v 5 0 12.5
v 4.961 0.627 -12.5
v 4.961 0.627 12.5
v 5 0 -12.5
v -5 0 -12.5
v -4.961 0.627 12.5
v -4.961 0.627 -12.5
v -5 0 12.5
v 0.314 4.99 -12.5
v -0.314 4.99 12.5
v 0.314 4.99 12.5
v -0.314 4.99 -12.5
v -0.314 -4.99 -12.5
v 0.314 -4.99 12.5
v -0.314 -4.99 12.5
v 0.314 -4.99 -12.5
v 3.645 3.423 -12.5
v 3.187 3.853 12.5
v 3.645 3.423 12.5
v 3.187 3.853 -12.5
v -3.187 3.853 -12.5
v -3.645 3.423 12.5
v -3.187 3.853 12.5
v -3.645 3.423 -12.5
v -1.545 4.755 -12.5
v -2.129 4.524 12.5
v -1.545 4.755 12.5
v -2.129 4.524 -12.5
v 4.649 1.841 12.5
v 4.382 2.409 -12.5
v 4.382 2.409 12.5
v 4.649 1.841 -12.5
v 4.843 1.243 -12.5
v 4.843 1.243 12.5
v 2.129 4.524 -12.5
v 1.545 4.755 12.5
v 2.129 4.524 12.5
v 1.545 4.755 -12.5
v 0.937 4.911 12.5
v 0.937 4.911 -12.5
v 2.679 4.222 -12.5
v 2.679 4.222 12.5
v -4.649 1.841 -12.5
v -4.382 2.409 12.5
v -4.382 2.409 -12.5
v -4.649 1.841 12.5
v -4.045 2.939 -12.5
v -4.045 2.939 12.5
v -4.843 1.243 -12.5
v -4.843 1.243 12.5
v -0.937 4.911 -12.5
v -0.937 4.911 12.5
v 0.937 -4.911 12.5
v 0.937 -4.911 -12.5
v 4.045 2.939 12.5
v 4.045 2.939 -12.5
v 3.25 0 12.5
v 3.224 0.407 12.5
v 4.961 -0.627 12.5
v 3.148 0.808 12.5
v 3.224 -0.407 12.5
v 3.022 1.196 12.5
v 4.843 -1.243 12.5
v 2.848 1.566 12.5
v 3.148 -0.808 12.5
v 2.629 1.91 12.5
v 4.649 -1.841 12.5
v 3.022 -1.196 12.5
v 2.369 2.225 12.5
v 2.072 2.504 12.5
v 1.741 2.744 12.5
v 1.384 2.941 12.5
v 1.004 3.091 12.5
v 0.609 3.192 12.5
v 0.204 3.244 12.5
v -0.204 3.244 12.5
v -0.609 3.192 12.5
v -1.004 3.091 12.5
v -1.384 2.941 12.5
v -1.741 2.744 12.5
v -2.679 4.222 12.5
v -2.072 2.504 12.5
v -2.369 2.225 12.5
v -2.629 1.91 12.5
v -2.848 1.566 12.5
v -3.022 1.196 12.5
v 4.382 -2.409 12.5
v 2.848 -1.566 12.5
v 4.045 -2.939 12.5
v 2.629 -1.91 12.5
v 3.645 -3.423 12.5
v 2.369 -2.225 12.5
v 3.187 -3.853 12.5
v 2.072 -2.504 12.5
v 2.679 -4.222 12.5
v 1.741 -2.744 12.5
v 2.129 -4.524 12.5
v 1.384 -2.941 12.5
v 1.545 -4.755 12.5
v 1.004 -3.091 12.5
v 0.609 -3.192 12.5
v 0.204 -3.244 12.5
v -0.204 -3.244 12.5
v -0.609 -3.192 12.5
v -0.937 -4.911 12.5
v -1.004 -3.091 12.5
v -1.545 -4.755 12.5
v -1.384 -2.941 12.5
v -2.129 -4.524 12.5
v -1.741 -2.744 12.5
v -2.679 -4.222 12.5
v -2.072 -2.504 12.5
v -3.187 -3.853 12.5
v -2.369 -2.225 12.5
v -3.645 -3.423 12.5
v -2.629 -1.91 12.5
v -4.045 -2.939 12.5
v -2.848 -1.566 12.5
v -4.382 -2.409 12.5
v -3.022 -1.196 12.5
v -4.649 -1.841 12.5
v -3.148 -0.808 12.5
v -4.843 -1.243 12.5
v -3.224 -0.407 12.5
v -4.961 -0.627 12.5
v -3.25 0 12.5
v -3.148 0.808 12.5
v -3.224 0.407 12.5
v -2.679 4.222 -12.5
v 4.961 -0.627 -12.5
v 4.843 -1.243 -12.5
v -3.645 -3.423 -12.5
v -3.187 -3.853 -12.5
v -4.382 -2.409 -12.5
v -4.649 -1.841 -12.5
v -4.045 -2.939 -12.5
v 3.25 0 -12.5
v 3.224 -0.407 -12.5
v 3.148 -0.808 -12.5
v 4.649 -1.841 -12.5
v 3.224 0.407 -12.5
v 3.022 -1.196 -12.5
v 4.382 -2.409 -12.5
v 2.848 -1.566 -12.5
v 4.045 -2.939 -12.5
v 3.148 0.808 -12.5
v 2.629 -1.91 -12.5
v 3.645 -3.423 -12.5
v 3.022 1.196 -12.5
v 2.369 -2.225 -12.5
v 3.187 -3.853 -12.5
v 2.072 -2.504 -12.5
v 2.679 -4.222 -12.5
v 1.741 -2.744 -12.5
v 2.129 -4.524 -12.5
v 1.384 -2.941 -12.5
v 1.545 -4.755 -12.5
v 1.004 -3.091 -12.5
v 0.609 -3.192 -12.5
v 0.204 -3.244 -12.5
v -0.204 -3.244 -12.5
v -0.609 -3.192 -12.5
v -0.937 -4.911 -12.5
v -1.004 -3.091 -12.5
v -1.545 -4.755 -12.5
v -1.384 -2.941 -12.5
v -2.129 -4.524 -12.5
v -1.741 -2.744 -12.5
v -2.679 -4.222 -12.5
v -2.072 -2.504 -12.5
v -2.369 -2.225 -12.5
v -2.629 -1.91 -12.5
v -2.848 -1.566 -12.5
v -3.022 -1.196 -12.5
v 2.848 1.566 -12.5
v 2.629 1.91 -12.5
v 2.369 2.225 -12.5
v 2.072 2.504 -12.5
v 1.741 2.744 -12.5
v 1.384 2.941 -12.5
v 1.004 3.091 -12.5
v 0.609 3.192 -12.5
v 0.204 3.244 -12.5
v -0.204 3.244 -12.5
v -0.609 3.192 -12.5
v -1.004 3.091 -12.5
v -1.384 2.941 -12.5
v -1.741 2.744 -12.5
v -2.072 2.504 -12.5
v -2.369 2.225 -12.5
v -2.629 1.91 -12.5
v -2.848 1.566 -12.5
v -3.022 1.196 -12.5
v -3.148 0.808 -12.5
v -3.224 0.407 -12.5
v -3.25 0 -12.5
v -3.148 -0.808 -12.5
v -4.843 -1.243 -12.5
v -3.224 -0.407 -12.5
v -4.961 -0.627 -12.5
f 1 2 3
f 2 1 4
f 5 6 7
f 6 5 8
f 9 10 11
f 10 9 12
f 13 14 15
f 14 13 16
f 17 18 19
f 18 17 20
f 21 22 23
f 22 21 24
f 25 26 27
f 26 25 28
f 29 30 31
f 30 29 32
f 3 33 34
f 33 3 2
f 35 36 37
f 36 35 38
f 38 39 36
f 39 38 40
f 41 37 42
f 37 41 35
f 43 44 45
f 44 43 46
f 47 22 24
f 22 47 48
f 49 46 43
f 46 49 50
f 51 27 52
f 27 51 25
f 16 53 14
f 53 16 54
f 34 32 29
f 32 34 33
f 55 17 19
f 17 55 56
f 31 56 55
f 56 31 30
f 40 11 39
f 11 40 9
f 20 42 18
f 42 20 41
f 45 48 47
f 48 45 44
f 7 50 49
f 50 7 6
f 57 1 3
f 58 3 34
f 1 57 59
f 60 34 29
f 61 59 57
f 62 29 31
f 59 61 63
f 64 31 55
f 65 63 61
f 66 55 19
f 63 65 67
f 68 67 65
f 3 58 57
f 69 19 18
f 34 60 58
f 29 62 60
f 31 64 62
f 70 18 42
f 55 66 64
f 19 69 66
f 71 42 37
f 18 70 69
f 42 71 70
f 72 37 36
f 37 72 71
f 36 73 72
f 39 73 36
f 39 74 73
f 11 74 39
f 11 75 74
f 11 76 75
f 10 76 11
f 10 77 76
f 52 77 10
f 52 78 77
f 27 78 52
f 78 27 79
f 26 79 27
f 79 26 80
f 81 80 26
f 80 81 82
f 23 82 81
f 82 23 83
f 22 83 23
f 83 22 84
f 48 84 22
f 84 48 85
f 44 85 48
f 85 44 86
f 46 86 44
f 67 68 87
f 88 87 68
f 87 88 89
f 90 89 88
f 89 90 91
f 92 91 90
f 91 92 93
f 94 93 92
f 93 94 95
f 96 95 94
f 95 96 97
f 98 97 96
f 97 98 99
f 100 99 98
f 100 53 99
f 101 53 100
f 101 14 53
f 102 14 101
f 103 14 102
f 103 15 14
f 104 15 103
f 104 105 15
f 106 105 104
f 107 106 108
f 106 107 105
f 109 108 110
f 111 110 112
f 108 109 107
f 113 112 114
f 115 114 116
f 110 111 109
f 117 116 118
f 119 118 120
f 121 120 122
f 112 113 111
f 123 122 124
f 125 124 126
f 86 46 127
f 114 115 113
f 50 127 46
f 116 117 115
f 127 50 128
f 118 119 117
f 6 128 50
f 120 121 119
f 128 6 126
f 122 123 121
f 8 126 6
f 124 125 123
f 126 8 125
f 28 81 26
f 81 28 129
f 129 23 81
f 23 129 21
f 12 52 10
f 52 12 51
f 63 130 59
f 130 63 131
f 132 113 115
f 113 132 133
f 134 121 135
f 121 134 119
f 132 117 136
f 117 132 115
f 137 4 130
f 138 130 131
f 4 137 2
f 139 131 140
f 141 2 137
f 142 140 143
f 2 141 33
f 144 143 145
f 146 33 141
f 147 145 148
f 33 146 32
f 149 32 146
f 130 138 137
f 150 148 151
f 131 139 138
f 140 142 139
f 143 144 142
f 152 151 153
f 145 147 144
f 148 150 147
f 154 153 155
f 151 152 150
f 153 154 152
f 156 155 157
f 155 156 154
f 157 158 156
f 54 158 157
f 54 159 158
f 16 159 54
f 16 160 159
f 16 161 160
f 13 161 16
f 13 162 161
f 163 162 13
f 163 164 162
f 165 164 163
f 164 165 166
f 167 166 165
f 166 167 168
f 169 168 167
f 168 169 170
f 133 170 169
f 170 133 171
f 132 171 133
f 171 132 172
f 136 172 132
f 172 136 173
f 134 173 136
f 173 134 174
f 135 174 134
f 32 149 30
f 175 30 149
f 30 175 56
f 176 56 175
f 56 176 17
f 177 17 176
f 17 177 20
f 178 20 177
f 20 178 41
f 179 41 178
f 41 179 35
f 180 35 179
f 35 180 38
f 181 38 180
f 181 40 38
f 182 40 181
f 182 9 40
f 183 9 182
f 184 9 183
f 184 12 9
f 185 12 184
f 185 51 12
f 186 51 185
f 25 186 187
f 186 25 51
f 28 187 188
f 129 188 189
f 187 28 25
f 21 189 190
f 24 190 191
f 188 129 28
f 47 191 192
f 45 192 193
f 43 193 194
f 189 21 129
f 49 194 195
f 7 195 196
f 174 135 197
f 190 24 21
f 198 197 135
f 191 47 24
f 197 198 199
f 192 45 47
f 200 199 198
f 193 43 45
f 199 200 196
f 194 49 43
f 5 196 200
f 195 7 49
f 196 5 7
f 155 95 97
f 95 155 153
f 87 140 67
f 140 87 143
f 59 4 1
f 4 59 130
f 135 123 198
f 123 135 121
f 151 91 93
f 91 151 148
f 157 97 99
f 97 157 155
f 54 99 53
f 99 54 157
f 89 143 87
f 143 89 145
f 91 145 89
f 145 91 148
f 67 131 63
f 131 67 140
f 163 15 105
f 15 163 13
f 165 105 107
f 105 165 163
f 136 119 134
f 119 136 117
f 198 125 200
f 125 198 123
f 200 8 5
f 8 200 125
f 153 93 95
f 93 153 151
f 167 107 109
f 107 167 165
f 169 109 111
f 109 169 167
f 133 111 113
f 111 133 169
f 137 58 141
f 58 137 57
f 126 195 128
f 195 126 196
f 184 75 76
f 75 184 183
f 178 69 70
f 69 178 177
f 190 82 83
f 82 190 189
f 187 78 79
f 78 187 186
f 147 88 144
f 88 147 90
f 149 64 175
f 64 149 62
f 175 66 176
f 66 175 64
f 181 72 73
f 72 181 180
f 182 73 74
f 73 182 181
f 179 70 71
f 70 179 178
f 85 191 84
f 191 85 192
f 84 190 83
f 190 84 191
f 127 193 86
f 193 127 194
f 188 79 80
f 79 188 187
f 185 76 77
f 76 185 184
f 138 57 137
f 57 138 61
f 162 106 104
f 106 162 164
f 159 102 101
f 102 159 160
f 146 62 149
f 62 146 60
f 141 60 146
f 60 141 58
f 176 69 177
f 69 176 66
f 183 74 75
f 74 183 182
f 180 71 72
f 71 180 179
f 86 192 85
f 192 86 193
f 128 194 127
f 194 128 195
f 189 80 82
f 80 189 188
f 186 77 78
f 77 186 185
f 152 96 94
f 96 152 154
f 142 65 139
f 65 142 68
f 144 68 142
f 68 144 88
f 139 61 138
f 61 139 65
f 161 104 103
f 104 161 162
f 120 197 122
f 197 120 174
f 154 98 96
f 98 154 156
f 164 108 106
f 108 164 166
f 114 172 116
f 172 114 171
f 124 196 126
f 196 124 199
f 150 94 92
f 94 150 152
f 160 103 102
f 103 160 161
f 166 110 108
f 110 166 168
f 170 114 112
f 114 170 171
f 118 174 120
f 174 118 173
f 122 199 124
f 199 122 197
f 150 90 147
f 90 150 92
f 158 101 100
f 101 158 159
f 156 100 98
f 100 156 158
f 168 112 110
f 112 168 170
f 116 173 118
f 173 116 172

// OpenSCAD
$fn = 50;


difference() {
	union() {
		translate(v = [0, 0, -12.5000000000]) {
			cylinder(h = 25, r = 5.0000000000);
		}
	}
	union() {
		translate(v = [0, 0, -100.0000000000]) {
			cylinder(h = 200, r = 3.2500000000);
		}
	}
}
